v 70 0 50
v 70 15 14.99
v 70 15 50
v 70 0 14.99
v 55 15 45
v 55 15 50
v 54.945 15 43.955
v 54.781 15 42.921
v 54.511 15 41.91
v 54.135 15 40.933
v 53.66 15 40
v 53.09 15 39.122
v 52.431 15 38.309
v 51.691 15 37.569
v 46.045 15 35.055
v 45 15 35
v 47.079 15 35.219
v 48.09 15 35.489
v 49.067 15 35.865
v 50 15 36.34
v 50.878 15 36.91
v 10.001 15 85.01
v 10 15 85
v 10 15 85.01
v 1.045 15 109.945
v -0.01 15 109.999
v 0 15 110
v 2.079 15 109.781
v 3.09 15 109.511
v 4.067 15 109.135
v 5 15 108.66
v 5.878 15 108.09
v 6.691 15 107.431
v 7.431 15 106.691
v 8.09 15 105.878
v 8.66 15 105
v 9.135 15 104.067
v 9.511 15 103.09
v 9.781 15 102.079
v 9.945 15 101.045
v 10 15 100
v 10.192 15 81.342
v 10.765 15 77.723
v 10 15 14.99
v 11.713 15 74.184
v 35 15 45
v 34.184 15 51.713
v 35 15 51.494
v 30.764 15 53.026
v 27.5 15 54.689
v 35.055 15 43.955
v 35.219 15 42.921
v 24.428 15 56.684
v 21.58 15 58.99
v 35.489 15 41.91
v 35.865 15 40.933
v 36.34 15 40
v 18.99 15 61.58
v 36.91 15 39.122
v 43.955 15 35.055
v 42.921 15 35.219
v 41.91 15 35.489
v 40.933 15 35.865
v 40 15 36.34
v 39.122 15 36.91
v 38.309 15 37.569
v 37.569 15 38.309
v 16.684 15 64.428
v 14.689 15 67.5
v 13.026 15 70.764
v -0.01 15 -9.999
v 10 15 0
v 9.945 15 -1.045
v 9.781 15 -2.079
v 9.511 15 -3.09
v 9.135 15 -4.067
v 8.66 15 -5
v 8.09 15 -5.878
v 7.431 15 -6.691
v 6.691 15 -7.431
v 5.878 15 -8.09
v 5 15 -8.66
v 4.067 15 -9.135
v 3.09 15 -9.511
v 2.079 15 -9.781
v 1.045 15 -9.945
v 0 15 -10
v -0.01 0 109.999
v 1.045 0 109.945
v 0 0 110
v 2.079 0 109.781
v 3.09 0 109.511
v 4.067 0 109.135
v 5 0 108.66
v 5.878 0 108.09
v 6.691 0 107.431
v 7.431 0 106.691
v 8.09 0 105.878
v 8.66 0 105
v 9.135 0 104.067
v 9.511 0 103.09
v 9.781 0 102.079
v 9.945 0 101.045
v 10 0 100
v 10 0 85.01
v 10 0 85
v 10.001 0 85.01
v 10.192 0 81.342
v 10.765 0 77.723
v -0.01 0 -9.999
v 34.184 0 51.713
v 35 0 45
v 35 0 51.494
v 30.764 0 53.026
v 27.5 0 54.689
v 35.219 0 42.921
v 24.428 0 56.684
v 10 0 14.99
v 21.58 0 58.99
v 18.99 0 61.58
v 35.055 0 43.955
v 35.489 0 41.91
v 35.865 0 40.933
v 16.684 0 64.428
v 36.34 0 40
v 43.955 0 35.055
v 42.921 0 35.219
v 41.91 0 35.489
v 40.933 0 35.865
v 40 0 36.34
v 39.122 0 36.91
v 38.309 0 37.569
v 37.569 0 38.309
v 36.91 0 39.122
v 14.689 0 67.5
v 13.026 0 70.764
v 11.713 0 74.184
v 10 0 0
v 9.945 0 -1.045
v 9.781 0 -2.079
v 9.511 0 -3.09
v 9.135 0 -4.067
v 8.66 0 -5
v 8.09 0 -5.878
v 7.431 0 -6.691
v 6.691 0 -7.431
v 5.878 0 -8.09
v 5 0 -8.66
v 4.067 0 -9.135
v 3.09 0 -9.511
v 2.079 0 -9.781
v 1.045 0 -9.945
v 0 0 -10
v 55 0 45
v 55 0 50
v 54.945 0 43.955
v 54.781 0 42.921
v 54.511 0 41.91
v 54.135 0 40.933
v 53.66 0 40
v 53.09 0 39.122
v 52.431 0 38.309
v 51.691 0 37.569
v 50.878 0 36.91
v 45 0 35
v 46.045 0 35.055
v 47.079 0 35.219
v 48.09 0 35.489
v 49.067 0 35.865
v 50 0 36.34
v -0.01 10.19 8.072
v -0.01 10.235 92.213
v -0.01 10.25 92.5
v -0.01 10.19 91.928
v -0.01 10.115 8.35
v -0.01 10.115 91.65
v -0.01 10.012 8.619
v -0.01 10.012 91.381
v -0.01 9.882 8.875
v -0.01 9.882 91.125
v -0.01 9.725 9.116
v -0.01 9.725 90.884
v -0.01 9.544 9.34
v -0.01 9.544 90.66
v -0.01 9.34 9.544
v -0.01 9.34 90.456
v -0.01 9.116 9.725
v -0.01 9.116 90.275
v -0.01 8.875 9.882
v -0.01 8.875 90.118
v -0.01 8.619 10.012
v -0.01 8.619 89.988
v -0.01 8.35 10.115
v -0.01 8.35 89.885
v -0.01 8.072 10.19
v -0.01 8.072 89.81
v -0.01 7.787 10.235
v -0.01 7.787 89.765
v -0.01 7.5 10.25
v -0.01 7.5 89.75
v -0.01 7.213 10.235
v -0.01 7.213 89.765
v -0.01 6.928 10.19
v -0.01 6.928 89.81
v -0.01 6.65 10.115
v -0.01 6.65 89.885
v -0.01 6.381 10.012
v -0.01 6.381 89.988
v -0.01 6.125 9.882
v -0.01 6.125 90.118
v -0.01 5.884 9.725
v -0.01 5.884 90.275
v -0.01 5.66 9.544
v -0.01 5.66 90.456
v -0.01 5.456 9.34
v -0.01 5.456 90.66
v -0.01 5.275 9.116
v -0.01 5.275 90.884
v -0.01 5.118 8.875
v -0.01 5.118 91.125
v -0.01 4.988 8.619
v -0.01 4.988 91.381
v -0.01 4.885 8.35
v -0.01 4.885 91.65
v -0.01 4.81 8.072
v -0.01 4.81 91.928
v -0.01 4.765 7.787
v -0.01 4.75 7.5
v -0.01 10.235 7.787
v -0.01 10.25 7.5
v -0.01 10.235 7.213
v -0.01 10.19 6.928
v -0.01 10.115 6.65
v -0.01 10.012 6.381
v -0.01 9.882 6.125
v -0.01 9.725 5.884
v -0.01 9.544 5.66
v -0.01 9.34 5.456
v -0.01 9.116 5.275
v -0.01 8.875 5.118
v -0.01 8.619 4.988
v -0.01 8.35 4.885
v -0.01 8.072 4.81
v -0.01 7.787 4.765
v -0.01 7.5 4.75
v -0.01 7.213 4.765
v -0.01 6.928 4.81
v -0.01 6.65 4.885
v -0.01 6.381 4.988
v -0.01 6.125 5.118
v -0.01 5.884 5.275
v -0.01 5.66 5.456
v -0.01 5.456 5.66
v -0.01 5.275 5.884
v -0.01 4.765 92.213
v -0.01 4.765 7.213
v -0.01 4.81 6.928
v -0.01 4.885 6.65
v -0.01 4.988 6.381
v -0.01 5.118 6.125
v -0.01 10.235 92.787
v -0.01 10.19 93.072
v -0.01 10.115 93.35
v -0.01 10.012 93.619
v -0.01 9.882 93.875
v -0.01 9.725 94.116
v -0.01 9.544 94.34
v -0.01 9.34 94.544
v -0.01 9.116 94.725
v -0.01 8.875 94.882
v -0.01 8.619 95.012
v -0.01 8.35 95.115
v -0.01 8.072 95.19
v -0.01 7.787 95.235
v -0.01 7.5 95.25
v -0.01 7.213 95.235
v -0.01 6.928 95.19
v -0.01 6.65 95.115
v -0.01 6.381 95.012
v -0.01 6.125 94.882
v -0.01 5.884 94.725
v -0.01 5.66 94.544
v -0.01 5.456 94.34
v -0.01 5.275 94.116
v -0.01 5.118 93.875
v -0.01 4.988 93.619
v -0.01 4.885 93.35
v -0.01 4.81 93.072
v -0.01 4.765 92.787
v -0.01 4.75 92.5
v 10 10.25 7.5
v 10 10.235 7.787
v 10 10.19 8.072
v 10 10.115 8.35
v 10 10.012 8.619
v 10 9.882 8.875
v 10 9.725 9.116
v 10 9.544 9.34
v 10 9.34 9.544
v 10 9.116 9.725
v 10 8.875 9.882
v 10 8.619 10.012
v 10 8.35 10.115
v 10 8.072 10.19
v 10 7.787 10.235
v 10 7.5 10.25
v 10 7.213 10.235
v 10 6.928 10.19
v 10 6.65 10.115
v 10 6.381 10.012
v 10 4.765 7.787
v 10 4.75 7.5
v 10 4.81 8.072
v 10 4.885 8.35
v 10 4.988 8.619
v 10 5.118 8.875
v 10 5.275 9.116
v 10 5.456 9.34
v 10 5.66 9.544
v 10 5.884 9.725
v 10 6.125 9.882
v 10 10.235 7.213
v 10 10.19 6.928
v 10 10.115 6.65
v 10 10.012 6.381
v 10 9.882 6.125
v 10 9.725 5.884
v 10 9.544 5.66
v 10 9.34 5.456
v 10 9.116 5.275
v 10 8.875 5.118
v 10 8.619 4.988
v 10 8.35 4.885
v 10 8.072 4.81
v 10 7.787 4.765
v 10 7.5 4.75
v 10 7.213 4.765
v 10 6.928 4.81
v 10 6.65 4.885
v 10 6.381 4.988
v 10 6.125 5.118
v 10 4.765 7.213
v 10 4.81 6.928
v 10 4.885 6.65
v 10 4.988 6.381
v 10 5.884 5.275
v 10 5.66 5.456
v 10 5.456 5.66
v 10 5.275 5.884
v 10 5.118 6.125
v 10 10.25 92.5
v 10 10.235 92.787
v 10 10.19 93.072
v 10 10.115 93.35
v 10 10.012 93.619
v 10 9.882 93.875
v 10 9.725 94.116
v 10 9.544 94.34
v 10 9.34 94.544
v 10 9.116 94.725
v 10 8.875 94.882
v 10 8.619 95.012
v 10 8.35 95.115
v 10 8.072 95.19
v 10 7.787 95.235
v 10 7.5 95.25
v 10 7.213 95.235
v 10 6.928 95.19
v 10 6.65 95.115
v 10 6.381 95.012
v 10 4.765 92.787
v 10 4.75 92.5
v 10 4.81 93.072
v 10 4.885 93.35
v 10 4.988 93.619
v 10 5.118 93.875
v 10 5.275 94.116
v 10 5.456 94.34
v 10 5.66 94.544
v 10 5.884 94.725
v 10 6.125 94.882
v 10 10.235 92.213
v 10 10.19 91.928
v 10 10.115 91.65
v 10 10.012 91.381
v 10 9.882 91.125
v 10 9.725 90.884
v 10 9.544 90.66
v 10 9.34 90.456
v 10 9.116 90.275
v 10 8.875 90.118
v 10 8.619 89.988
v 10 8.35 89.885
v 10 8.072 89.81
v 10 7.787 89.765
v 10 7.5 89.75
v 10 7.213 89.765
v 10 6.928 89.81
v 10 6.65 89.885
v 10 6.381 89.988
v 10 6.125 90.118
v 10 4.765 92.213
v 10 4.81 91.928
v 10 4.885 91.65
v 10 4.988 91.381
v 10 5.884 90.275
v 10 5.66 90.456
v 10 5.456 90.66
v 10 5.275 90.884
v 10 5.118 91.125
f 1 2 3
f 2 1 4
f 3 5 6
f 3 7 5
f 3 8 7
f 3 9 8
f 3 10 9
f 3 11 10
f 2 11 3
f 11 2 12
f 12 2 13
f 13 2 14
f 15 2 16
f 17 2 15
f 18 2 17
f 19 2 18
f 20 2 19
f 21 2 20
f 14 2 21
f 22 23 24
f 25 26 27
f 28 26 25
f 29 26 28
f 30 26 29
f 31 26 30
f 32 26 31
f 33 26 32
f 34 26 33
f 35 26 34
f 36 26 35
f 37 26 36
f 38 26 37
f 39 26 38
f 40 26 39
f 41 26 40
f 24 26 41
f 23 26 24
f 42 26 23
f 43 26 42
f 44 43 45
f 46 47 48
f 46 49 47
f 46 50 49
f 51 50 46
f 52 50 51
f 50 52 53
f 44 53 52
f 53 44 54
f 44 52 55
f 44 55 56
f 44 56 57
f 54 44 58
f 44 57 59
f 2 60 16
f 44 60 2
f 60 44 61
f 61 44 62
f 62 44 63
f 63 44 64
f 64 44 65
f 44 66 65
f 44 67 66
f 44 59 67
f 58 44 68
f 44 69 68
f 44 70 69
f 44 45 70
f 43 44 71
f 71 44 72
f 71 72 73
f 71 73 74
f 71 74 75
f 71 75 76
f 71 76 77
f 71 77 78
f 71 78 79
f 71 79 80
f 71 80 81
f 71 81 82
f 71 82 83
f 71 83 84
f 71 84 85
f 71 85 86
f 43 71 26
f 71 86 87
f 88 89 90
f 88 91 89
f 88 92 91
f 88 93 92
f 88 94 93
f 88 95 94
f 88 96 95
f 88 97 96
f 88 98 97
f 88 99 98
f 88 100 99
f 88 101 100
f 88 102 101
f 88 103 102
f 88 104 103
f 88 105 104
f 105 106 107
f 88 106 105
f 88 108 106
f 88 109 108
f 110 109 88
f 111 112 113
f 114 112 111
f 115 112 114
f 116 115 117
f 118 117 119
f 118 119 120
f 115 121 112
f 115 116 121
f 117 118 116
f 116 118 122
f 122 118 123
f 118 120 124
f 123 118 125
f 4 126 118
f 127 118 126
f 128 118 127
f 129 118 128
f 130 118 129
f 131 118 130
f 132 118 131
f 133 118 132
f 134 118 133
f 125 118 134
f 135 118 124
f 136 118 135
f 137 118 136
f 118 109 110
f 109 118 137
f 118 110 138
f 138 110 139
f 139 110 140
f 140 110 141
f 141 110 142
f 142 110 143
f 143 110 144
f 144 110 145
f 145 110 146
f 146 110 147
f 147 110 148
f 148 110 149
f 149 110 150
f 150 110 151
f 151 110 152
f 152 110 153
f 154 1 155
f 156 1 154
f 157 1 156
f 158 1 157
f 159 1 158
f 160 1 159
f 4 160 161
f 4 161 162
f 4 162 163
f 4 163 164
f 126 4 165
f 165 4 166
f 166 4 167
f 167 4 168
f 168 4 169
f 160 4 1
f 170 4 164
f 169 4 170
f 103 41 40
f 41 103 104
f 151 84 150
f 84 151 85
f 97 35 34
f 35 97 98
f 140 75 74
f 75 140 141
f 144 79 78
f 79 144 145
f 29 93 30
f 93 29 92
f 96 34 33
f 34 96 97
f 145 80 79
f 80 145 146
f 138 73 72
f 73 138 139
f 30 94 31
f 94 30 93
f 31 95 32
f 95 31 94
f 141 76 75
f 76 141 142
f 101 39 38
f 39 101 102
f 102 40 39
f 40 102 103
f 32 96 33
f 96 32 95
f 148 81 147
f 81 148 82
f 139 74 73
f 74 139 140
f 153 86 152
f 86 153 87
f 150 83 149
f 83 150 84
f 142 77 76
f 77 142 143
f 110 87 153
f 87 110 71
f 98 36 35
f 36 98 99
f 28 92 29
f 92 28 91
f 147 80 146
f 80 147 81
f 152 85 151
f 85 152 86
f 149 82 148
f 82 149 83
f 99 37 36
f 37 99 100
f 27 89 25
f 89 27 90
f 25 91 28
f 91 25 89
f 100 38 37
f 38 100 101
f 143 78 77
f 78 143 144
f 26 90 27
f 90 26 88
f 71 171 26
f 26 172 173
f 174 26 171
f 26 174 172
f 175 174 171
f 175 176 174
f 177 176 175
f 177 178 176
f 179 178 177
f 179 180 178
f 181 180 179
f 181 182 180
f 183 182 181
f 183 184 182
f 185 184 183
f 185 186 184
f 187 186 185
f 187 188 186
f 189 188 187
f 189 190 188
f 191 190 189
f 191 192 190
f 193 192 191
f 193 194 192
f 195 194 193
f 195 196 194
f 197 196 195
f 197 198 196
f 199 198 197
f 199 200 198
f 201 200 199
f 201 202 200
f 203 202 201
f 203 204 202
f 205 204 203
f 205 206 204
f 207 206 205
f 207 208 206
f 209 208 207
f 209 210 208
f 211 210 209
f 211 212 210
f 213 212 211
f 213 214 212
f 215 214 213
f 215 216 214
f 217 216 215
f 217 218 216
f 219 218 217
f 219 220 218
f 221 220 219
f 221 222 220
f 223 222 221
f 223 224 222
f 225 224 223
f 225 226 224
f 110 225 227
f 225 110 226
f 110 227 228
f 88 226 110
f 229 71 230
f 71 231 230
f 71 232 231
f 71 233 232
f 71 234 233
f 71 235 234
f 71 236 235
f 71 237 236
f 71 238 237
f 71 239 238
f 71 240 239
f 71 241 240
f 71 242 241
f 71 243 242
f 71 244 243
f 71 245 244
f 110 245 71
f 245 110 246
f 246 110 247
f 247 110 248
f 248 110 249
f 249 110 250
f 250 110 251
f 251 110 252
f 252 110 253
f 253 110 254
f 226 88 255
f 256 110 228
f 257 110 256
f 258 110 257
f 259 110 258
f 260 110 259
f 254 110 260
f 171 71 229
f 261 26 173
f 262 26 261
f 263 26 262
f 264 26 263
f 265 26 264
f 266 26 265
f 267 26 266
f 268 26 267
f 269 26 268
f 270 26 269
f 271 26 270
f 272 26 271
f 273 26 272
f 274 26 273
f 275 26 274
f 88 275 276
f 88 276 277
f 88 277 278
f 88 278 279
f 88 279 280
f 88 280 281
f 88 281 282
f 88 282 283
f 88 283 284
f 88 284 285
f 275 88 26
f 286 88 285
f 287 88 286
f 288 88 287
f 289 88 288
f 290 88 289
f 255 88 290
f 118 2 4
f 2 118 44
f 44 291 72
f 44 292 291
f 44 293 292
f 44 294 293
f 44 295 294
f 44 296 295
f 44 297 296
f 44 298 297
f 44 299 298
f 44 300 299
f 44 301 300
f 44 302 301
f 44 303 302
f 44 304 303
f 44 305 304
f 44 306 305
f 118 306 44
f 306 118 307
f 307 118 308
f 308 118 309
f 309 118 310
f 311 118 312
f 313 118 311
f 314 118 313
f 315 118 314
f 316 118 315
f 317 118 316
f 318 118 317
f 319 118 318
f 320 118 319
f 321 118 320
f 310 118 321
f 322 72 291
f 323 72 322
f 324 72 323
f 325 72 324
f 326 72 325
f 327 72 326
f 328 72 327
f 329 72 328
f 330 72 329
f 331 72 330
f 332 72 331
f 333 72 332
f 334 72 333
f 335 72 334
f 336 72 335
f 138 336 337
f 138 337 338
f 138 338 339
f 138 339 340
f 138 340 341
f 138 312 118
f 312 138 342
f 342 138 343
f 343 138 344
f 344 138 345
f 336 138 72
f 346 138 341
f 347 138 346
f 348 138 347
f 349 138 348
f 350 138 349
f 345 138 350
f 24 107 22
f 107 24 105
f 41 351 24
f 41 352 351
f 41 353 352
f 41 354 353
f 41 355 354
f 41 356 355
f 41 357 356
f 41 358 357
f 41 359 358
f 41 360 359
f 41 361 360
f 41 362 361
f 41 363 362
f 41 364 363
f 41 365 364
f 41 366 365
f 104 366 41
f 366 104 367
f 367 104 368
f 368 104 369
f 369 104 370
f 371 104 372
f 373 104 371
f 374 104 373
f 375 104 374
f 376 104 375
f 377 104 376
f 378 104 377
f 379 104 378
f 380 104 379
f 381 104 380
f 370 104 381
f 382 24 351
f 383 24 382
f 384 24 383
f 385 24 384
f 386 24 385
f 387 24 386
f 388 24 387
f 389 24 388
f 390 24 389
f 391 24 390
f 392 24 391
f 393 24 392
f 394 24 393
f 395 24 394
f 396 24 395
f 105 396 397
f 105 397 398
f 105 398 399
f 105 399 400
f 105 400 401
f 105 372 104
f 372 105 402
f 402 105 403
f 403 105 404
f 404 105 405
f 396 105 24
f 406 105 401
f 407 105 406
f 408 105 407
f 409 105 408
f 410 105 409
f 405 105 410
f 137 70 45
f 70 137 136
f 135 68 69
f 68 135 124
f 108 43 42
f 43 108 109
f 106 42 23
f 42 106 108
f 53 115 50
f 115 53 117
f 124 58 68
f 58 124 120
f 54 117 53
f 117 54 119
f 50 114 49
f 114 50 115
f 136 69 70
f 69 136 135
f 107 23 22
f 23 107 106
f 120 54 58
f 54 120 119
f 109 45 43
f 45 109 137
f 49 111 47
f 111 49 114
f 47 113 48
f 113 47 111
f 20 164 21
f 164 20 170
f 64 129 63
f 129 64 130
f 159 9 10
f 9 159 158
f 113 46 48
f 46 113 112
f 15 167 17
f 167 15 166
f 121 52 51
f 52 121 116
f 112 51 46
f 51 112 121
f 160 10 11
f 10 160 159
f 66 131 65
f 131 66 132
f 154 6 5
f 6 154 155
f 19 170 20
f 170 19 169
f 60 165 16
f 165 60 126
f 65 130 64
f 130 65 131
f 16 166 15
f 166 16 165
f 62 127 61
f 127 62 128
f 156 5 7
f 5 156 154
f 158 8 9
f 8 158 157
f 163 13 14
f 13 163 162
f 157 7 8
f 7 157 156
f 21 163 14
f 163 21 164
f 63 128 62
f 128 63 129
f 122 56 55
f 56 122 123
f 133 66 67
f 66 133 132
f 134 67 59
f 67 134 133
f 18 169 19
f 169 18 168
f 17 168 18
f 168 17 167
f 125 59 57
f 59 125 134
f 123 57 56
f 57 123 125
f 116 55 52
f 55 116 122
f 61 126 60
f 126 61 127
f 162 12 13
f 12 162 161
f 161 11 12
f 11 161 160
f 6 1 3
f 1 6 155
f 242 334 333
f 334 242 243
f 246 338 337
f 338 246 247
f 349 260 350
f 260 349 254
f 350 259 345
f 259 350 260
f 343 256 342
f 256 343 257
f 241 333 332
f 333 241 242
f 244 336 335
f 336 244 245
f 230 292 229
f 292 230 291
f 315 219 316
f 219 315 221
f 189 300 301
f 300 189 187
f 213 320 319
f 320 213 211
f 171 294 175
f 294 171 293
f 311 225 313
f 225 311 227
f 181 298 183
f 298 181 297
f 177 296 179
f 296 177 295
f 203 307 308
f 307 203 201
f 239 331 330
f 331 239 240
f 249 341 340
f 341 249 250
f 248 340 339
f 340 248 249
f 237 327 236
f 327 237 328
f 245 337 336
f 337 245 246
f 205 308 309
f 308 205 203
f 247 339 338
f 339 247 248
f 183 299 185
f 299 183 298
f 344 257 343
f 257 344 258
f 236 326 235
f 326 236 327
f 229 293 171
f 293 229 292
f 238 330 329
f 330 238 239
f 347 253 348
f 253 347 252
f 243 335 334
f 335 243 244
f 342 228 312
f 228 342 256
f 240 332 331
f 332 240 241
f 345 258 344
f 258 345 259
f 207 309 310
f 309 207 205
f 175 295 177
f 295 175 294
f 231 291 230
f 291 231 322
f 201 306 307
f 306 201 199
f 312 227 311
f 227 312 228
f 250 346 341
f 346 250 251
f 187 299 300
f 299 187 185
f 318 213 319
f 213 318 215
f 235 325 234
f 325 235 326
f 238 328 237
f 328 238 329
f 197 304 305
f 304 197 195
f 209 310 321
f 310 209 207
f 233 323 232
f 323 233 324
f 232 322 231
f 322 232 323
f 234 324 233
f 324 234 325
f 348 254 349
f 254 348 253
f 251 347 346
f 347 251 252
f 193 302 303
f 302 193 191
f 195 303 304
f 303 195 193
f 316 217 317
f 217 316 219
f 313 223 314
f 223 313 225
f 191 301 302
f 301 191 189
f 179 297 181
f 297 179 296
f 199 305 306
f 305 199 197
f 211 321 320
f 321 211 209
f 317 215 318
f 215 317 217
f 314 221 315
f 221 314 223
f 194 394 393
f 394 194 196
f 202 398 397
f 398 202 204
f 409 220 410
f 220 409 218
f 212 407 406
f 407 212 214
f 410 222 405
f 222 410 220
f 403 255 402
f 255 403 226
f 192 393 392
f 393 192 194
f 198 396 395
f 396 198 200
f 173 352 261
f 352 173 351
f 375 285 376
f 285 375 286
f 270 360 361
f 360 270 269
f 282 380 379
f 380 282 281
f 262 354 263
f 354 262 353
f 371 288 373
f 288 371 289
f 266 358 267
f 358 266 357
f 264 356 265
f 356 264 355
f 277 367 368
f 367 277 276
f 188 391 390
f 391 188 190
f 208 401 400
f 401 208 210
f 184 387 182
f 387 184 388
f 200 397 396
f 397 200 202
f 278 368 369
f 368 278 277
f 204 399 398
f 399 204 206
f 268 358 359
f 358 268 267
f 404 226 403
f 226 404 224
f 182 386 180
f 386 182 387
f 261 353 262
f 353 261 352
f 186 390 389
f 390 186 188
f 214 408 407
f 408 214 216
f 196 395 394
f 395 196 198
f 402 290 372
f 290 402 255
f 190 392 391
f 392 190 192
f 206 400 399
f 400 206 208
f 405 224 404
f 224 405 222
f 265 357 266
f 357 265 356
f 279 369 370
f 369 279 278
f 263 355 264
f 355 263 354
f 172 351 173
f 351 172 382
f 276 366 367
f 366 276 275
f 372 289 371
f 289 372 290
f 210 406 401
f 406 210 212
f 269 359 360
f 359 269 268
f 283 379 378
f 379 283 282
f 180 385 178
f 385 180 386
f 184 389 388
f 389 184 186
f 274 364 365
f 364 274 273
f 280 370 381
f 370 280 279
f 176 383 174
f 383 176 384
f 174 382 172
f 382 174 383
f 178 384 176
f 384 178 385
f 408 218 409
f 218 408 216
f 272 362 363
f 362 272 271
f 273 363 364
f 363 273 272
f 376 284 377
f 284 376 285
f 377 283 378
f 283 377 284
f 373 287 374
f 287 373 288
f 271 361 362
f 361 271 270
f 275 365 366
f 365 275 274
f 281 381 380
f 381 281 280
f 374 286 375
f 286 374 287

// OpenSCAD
$fn=60;


width=15;
depth=70;
height=100;
wallDistance=10;
edgesPadding=15;
bigHole = 70;
smallHole = 20;
small=0.01;

difference() {
  union() {
    cube([depth, width, height]);
    translate([0,width,0]) hull() {
      translate([0,0,0]) rotate([90,0,0]) cylinder(d=wallDistance*2, h=width);
      translate([0,0,height]) rotate([90,0,0]) cylinder(d=wallDistance*2, h=width);
    }
  }
  translate([-wallDistance-small, -small, -wallDistance]) cube([wallDistance, width+small*2, height+2*wallDistance]);
  translate([wallDistance, -small, -small])
    cube([depth, width+small*2, edgesPadding]);
  translate([wallDistance, -small, height-edgesPadding+small])
    cube([depth, width+small*2, edgesPadding]);
  translate([bigHole/2+wallDistance, width/2-small, edgesPadding+bigHole ]) 
    rotate([90,0,0])
      cylinder(d=bigHole, h=width+small*4, center=true);
  translate([bigHole/2+wallDistance, width/2-small, edgesPadding+smallHole+10 ]) 
    hull() {
    rotate([90,0,0])
      cylinder(d=smallHole, h=width+small*4, center=true);
    translate([0,0,50]) rotate([90,0,0])
      cylinder(d=smallHole, h=width+small*4, center=true);
    }
  translate([wallDistance+bigHole/2, width/2-small, edgesPadding+bigHole/2 ])
    cube([depth, width+small*2, edgesPadding]);
  translate([wallDistance+bigHole/2, -small, edgesPadding+bigHole/2 ])
    cube([depth, width+small*2, edgesPadding]);
translate([0,width/2,edgesPadding/2]) rotate([0,90,0]) cylinder(d=5.5, h=100, center=true);
translate([0,width/2,height-edgesPadding/2]) rotate([0,90,0]) cylinder(d=5.5, h=100, center=true);
}
